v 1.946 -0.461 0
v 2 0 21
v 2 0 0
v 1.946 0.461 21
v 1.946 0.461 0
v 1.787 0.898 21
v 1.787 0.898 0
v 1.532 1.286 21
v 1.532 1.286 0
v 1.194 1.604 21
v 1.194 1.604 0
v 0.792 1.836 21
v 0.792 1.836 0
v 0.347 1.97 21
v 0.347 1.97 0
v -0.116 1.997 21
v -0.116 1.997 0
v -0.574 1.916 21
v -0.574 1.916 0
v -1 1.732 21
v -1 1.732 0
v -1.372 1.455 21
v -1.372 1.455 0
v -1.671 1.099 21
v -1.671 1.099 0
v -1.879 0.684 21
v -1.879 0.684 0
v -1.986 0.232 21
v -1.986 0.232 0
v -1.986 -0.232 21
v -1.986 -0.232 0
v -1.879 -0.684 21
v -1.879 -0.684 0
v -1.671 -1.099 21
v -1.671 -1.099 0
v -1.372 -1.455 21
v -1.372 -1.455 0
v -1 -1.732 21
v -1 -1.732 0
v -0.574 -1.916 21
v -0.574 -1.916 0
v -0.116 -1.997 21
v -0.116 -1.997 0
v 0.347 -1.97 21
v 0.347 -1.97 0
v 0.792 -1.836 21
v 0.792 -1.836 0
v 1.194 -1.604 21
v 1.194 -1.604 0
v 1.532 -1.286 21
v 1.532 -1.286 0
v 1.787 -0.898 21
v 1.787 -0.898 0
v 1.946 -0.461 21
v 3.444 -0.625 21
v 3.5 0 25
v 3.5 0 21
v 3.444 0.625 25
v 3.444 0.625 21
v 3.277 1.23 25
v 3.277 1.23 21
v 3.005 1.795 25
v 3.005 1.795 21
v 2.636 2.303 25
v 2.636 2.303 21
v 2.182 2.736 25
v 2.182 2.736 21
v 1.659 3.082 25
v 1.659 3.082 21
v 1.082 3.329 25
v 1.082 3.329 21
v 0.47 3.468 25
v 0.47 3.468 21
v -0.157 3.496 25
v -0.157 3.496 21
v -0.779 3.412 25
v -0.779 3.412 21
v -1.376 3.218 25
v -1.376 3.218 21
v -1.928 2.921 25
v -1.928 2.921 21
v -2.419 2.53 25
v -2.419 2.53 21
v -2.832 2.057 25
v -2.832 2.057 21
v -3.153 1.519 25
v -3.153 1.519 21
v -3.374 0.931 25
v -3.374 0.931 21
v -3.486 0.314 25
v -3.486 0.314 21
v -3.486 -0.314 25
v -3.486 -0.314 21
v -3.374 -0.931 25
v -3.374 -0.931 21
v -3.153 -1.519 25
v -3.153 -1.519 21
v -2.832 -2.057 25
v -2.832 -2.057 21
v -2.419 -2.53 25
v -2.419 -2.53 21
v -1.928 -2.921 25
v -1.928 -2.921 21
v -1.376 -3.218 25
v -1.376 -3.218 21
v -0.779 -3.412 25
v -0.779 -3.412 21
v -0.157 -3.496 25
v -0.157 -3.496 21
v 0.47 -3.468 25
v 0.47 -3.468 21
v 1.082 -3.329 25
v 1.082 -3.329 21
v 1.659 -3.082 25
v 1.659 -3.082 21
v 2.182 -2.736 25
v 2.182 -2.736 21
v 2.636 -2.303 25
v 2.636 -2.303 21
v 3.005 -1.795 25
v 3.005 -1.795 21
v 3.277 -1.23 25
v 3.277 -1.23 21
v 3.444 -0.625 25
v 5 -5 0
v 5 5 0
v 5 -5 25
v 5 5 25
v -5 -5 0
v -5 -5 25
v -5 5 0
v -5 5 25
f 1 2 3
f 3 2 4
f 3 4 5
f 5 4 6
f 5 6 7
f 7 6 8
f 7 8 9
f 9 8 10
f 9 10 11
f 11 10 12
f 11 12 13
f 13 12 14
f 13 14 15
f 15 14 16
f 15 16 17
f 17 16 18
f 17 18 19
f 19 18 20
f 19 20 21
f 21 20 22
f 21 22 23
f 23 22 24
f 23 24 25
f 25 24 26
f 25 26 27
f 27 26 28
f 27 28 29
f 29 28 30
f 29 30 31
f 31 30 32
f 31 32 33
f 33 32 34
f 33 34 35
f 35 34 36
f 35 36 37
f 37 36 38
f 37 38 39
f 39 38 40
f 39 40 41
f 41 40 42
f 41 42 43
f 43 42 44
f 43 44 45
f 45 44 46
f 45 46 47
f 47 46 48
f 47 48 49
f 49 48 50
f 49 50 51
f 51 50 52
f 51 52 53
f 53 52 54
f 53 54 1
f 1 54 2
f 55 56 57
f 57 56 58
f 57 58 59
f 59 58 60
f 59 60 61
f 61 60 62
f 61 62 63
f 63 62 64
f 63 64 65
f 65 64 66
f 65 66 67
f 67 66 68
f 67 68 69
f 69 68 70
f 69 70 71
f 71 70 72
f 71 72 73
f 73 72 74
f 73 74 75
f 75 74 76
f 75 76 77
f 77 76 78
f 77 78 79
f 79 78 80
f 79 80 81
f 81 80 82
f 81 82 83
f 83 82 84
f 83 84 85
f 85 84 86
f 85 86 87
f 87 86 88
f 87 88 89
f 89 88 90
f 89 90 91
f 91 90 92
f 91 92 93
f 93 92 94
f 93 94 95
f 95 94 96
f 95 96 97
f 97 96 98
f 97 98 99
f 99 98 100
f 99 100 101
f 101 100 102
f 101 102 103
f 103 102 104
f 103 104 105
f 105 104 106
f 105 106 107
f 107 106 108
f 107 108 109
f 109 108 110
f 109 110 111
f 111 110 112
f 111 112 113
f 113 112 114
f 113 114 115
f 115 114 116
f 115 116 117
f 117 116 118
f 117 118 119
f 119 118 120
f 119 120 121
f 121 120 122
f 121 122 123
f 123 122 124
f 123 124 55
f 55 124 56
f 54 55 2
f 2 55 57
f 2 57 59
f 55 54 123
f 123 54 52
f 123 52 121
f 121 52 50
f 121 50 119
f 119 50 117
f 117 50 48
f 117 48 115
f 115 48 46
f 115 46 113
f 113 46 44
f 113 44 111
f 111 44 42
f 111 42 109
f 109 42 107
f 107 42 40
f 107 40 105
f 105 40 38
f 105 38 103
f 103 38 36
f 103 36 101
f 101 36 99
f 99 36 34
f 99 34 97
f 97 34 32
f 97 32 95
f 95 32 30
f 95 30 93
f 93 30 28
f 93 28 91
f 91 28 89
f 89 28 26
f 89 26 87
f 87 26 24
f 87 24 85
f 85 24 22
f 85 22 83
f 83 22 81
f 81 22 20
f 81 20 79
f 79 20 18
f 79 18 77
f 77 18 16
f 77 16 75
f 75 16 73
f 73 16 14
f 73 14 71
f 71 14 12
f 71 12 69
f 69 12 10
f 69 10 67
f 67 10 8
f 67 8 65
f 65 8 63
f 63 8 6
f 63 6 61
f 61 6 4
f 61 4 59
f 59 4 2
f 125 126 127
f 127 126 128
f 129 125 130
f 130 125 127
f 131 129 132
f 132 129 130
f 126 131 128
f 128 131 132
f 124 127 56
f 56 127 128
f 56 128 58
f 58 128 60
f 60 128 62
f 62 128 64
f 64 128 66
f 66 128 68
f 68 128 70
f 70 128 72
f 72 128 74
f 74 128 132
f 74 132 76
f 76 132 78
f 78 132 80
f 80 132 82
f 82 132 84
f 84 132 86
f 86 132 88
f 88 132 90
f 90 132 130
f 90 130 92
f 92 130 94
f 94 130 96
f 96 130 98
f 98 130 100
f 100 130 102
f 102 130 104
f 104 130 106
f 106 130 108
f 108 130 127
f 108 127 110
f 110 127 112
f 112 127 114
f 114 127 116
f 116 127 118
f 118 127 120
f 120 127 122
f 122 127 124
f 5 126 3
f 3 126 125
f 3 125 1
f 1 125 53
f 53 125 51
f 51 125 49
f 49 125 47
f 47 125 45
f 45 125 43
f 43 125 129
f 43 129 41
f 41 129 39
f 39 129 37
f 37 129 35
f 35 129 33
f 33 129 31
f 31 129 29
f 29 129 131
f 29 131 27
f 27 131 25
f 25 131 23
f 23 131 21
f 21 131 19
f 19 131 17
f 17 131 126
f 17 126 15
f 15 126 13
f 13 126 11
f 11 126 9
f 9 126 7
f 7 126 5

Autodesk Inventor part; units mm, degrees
ref_plane "YZ Plane" through (0, 0, 0) normal (1, 0, 0) x (0, 1, 0)
ref_plane "XZ Plane" through (0, 0, 0) normal (0, 1, 0) x (-1, 0, 0)
ref_plane "XY Plane" through (0, 0, 0) normal (0, 0, 1) x (1, 0, 0)
sketch "Sketch1" plane through (0, 0, 0) normal (0, 0, 1) x (1, 0, 0)
  line L0 (-5, -5) -> (5, -5)
  line L1 (5, -5) -> (5, 5)
  line L2 (5, 5) -> (-5, 5)
  line L3 (-5, 5) -> (-5, -5)
  line L4 (-5, -5) -> (5, 5) construction
  line L5 (5, -5) -> (-5, 5) construction
  point P0 (0, 0)
  dimension "length" = 10
  dimension "d1" = 10
extrude "Extrusion1" add sketch "Sketch1" along normal blind 25
sketch "Sketch2" plane through (0, 0, 25) normal (0, 0, 1) x (1, 0, 0)
  circle A0 centre (0, 0) radius 3.5
  dimension "diameter" = 7
extrude "Extrusion2" cut sketch "Sketch2" against normal blind 4
sketch "Sketch3" plane through (0, 0, 21) normal (0, 0, 1) x (1, 0, 0)
  circle A0 centre (0, 0) radius 2
  dimension "d9" = 4
extrude "Extrusion3" cut sketch "Sketch3" against normal blind 21
thread "Thread3" size "M4x0.7" class "6H" standard "ANSI Metric M Profile" length 10
equation "\"d1\" = length"
equation "\"d14\" = length"
properties part number "m4x0.7 25mm long"
